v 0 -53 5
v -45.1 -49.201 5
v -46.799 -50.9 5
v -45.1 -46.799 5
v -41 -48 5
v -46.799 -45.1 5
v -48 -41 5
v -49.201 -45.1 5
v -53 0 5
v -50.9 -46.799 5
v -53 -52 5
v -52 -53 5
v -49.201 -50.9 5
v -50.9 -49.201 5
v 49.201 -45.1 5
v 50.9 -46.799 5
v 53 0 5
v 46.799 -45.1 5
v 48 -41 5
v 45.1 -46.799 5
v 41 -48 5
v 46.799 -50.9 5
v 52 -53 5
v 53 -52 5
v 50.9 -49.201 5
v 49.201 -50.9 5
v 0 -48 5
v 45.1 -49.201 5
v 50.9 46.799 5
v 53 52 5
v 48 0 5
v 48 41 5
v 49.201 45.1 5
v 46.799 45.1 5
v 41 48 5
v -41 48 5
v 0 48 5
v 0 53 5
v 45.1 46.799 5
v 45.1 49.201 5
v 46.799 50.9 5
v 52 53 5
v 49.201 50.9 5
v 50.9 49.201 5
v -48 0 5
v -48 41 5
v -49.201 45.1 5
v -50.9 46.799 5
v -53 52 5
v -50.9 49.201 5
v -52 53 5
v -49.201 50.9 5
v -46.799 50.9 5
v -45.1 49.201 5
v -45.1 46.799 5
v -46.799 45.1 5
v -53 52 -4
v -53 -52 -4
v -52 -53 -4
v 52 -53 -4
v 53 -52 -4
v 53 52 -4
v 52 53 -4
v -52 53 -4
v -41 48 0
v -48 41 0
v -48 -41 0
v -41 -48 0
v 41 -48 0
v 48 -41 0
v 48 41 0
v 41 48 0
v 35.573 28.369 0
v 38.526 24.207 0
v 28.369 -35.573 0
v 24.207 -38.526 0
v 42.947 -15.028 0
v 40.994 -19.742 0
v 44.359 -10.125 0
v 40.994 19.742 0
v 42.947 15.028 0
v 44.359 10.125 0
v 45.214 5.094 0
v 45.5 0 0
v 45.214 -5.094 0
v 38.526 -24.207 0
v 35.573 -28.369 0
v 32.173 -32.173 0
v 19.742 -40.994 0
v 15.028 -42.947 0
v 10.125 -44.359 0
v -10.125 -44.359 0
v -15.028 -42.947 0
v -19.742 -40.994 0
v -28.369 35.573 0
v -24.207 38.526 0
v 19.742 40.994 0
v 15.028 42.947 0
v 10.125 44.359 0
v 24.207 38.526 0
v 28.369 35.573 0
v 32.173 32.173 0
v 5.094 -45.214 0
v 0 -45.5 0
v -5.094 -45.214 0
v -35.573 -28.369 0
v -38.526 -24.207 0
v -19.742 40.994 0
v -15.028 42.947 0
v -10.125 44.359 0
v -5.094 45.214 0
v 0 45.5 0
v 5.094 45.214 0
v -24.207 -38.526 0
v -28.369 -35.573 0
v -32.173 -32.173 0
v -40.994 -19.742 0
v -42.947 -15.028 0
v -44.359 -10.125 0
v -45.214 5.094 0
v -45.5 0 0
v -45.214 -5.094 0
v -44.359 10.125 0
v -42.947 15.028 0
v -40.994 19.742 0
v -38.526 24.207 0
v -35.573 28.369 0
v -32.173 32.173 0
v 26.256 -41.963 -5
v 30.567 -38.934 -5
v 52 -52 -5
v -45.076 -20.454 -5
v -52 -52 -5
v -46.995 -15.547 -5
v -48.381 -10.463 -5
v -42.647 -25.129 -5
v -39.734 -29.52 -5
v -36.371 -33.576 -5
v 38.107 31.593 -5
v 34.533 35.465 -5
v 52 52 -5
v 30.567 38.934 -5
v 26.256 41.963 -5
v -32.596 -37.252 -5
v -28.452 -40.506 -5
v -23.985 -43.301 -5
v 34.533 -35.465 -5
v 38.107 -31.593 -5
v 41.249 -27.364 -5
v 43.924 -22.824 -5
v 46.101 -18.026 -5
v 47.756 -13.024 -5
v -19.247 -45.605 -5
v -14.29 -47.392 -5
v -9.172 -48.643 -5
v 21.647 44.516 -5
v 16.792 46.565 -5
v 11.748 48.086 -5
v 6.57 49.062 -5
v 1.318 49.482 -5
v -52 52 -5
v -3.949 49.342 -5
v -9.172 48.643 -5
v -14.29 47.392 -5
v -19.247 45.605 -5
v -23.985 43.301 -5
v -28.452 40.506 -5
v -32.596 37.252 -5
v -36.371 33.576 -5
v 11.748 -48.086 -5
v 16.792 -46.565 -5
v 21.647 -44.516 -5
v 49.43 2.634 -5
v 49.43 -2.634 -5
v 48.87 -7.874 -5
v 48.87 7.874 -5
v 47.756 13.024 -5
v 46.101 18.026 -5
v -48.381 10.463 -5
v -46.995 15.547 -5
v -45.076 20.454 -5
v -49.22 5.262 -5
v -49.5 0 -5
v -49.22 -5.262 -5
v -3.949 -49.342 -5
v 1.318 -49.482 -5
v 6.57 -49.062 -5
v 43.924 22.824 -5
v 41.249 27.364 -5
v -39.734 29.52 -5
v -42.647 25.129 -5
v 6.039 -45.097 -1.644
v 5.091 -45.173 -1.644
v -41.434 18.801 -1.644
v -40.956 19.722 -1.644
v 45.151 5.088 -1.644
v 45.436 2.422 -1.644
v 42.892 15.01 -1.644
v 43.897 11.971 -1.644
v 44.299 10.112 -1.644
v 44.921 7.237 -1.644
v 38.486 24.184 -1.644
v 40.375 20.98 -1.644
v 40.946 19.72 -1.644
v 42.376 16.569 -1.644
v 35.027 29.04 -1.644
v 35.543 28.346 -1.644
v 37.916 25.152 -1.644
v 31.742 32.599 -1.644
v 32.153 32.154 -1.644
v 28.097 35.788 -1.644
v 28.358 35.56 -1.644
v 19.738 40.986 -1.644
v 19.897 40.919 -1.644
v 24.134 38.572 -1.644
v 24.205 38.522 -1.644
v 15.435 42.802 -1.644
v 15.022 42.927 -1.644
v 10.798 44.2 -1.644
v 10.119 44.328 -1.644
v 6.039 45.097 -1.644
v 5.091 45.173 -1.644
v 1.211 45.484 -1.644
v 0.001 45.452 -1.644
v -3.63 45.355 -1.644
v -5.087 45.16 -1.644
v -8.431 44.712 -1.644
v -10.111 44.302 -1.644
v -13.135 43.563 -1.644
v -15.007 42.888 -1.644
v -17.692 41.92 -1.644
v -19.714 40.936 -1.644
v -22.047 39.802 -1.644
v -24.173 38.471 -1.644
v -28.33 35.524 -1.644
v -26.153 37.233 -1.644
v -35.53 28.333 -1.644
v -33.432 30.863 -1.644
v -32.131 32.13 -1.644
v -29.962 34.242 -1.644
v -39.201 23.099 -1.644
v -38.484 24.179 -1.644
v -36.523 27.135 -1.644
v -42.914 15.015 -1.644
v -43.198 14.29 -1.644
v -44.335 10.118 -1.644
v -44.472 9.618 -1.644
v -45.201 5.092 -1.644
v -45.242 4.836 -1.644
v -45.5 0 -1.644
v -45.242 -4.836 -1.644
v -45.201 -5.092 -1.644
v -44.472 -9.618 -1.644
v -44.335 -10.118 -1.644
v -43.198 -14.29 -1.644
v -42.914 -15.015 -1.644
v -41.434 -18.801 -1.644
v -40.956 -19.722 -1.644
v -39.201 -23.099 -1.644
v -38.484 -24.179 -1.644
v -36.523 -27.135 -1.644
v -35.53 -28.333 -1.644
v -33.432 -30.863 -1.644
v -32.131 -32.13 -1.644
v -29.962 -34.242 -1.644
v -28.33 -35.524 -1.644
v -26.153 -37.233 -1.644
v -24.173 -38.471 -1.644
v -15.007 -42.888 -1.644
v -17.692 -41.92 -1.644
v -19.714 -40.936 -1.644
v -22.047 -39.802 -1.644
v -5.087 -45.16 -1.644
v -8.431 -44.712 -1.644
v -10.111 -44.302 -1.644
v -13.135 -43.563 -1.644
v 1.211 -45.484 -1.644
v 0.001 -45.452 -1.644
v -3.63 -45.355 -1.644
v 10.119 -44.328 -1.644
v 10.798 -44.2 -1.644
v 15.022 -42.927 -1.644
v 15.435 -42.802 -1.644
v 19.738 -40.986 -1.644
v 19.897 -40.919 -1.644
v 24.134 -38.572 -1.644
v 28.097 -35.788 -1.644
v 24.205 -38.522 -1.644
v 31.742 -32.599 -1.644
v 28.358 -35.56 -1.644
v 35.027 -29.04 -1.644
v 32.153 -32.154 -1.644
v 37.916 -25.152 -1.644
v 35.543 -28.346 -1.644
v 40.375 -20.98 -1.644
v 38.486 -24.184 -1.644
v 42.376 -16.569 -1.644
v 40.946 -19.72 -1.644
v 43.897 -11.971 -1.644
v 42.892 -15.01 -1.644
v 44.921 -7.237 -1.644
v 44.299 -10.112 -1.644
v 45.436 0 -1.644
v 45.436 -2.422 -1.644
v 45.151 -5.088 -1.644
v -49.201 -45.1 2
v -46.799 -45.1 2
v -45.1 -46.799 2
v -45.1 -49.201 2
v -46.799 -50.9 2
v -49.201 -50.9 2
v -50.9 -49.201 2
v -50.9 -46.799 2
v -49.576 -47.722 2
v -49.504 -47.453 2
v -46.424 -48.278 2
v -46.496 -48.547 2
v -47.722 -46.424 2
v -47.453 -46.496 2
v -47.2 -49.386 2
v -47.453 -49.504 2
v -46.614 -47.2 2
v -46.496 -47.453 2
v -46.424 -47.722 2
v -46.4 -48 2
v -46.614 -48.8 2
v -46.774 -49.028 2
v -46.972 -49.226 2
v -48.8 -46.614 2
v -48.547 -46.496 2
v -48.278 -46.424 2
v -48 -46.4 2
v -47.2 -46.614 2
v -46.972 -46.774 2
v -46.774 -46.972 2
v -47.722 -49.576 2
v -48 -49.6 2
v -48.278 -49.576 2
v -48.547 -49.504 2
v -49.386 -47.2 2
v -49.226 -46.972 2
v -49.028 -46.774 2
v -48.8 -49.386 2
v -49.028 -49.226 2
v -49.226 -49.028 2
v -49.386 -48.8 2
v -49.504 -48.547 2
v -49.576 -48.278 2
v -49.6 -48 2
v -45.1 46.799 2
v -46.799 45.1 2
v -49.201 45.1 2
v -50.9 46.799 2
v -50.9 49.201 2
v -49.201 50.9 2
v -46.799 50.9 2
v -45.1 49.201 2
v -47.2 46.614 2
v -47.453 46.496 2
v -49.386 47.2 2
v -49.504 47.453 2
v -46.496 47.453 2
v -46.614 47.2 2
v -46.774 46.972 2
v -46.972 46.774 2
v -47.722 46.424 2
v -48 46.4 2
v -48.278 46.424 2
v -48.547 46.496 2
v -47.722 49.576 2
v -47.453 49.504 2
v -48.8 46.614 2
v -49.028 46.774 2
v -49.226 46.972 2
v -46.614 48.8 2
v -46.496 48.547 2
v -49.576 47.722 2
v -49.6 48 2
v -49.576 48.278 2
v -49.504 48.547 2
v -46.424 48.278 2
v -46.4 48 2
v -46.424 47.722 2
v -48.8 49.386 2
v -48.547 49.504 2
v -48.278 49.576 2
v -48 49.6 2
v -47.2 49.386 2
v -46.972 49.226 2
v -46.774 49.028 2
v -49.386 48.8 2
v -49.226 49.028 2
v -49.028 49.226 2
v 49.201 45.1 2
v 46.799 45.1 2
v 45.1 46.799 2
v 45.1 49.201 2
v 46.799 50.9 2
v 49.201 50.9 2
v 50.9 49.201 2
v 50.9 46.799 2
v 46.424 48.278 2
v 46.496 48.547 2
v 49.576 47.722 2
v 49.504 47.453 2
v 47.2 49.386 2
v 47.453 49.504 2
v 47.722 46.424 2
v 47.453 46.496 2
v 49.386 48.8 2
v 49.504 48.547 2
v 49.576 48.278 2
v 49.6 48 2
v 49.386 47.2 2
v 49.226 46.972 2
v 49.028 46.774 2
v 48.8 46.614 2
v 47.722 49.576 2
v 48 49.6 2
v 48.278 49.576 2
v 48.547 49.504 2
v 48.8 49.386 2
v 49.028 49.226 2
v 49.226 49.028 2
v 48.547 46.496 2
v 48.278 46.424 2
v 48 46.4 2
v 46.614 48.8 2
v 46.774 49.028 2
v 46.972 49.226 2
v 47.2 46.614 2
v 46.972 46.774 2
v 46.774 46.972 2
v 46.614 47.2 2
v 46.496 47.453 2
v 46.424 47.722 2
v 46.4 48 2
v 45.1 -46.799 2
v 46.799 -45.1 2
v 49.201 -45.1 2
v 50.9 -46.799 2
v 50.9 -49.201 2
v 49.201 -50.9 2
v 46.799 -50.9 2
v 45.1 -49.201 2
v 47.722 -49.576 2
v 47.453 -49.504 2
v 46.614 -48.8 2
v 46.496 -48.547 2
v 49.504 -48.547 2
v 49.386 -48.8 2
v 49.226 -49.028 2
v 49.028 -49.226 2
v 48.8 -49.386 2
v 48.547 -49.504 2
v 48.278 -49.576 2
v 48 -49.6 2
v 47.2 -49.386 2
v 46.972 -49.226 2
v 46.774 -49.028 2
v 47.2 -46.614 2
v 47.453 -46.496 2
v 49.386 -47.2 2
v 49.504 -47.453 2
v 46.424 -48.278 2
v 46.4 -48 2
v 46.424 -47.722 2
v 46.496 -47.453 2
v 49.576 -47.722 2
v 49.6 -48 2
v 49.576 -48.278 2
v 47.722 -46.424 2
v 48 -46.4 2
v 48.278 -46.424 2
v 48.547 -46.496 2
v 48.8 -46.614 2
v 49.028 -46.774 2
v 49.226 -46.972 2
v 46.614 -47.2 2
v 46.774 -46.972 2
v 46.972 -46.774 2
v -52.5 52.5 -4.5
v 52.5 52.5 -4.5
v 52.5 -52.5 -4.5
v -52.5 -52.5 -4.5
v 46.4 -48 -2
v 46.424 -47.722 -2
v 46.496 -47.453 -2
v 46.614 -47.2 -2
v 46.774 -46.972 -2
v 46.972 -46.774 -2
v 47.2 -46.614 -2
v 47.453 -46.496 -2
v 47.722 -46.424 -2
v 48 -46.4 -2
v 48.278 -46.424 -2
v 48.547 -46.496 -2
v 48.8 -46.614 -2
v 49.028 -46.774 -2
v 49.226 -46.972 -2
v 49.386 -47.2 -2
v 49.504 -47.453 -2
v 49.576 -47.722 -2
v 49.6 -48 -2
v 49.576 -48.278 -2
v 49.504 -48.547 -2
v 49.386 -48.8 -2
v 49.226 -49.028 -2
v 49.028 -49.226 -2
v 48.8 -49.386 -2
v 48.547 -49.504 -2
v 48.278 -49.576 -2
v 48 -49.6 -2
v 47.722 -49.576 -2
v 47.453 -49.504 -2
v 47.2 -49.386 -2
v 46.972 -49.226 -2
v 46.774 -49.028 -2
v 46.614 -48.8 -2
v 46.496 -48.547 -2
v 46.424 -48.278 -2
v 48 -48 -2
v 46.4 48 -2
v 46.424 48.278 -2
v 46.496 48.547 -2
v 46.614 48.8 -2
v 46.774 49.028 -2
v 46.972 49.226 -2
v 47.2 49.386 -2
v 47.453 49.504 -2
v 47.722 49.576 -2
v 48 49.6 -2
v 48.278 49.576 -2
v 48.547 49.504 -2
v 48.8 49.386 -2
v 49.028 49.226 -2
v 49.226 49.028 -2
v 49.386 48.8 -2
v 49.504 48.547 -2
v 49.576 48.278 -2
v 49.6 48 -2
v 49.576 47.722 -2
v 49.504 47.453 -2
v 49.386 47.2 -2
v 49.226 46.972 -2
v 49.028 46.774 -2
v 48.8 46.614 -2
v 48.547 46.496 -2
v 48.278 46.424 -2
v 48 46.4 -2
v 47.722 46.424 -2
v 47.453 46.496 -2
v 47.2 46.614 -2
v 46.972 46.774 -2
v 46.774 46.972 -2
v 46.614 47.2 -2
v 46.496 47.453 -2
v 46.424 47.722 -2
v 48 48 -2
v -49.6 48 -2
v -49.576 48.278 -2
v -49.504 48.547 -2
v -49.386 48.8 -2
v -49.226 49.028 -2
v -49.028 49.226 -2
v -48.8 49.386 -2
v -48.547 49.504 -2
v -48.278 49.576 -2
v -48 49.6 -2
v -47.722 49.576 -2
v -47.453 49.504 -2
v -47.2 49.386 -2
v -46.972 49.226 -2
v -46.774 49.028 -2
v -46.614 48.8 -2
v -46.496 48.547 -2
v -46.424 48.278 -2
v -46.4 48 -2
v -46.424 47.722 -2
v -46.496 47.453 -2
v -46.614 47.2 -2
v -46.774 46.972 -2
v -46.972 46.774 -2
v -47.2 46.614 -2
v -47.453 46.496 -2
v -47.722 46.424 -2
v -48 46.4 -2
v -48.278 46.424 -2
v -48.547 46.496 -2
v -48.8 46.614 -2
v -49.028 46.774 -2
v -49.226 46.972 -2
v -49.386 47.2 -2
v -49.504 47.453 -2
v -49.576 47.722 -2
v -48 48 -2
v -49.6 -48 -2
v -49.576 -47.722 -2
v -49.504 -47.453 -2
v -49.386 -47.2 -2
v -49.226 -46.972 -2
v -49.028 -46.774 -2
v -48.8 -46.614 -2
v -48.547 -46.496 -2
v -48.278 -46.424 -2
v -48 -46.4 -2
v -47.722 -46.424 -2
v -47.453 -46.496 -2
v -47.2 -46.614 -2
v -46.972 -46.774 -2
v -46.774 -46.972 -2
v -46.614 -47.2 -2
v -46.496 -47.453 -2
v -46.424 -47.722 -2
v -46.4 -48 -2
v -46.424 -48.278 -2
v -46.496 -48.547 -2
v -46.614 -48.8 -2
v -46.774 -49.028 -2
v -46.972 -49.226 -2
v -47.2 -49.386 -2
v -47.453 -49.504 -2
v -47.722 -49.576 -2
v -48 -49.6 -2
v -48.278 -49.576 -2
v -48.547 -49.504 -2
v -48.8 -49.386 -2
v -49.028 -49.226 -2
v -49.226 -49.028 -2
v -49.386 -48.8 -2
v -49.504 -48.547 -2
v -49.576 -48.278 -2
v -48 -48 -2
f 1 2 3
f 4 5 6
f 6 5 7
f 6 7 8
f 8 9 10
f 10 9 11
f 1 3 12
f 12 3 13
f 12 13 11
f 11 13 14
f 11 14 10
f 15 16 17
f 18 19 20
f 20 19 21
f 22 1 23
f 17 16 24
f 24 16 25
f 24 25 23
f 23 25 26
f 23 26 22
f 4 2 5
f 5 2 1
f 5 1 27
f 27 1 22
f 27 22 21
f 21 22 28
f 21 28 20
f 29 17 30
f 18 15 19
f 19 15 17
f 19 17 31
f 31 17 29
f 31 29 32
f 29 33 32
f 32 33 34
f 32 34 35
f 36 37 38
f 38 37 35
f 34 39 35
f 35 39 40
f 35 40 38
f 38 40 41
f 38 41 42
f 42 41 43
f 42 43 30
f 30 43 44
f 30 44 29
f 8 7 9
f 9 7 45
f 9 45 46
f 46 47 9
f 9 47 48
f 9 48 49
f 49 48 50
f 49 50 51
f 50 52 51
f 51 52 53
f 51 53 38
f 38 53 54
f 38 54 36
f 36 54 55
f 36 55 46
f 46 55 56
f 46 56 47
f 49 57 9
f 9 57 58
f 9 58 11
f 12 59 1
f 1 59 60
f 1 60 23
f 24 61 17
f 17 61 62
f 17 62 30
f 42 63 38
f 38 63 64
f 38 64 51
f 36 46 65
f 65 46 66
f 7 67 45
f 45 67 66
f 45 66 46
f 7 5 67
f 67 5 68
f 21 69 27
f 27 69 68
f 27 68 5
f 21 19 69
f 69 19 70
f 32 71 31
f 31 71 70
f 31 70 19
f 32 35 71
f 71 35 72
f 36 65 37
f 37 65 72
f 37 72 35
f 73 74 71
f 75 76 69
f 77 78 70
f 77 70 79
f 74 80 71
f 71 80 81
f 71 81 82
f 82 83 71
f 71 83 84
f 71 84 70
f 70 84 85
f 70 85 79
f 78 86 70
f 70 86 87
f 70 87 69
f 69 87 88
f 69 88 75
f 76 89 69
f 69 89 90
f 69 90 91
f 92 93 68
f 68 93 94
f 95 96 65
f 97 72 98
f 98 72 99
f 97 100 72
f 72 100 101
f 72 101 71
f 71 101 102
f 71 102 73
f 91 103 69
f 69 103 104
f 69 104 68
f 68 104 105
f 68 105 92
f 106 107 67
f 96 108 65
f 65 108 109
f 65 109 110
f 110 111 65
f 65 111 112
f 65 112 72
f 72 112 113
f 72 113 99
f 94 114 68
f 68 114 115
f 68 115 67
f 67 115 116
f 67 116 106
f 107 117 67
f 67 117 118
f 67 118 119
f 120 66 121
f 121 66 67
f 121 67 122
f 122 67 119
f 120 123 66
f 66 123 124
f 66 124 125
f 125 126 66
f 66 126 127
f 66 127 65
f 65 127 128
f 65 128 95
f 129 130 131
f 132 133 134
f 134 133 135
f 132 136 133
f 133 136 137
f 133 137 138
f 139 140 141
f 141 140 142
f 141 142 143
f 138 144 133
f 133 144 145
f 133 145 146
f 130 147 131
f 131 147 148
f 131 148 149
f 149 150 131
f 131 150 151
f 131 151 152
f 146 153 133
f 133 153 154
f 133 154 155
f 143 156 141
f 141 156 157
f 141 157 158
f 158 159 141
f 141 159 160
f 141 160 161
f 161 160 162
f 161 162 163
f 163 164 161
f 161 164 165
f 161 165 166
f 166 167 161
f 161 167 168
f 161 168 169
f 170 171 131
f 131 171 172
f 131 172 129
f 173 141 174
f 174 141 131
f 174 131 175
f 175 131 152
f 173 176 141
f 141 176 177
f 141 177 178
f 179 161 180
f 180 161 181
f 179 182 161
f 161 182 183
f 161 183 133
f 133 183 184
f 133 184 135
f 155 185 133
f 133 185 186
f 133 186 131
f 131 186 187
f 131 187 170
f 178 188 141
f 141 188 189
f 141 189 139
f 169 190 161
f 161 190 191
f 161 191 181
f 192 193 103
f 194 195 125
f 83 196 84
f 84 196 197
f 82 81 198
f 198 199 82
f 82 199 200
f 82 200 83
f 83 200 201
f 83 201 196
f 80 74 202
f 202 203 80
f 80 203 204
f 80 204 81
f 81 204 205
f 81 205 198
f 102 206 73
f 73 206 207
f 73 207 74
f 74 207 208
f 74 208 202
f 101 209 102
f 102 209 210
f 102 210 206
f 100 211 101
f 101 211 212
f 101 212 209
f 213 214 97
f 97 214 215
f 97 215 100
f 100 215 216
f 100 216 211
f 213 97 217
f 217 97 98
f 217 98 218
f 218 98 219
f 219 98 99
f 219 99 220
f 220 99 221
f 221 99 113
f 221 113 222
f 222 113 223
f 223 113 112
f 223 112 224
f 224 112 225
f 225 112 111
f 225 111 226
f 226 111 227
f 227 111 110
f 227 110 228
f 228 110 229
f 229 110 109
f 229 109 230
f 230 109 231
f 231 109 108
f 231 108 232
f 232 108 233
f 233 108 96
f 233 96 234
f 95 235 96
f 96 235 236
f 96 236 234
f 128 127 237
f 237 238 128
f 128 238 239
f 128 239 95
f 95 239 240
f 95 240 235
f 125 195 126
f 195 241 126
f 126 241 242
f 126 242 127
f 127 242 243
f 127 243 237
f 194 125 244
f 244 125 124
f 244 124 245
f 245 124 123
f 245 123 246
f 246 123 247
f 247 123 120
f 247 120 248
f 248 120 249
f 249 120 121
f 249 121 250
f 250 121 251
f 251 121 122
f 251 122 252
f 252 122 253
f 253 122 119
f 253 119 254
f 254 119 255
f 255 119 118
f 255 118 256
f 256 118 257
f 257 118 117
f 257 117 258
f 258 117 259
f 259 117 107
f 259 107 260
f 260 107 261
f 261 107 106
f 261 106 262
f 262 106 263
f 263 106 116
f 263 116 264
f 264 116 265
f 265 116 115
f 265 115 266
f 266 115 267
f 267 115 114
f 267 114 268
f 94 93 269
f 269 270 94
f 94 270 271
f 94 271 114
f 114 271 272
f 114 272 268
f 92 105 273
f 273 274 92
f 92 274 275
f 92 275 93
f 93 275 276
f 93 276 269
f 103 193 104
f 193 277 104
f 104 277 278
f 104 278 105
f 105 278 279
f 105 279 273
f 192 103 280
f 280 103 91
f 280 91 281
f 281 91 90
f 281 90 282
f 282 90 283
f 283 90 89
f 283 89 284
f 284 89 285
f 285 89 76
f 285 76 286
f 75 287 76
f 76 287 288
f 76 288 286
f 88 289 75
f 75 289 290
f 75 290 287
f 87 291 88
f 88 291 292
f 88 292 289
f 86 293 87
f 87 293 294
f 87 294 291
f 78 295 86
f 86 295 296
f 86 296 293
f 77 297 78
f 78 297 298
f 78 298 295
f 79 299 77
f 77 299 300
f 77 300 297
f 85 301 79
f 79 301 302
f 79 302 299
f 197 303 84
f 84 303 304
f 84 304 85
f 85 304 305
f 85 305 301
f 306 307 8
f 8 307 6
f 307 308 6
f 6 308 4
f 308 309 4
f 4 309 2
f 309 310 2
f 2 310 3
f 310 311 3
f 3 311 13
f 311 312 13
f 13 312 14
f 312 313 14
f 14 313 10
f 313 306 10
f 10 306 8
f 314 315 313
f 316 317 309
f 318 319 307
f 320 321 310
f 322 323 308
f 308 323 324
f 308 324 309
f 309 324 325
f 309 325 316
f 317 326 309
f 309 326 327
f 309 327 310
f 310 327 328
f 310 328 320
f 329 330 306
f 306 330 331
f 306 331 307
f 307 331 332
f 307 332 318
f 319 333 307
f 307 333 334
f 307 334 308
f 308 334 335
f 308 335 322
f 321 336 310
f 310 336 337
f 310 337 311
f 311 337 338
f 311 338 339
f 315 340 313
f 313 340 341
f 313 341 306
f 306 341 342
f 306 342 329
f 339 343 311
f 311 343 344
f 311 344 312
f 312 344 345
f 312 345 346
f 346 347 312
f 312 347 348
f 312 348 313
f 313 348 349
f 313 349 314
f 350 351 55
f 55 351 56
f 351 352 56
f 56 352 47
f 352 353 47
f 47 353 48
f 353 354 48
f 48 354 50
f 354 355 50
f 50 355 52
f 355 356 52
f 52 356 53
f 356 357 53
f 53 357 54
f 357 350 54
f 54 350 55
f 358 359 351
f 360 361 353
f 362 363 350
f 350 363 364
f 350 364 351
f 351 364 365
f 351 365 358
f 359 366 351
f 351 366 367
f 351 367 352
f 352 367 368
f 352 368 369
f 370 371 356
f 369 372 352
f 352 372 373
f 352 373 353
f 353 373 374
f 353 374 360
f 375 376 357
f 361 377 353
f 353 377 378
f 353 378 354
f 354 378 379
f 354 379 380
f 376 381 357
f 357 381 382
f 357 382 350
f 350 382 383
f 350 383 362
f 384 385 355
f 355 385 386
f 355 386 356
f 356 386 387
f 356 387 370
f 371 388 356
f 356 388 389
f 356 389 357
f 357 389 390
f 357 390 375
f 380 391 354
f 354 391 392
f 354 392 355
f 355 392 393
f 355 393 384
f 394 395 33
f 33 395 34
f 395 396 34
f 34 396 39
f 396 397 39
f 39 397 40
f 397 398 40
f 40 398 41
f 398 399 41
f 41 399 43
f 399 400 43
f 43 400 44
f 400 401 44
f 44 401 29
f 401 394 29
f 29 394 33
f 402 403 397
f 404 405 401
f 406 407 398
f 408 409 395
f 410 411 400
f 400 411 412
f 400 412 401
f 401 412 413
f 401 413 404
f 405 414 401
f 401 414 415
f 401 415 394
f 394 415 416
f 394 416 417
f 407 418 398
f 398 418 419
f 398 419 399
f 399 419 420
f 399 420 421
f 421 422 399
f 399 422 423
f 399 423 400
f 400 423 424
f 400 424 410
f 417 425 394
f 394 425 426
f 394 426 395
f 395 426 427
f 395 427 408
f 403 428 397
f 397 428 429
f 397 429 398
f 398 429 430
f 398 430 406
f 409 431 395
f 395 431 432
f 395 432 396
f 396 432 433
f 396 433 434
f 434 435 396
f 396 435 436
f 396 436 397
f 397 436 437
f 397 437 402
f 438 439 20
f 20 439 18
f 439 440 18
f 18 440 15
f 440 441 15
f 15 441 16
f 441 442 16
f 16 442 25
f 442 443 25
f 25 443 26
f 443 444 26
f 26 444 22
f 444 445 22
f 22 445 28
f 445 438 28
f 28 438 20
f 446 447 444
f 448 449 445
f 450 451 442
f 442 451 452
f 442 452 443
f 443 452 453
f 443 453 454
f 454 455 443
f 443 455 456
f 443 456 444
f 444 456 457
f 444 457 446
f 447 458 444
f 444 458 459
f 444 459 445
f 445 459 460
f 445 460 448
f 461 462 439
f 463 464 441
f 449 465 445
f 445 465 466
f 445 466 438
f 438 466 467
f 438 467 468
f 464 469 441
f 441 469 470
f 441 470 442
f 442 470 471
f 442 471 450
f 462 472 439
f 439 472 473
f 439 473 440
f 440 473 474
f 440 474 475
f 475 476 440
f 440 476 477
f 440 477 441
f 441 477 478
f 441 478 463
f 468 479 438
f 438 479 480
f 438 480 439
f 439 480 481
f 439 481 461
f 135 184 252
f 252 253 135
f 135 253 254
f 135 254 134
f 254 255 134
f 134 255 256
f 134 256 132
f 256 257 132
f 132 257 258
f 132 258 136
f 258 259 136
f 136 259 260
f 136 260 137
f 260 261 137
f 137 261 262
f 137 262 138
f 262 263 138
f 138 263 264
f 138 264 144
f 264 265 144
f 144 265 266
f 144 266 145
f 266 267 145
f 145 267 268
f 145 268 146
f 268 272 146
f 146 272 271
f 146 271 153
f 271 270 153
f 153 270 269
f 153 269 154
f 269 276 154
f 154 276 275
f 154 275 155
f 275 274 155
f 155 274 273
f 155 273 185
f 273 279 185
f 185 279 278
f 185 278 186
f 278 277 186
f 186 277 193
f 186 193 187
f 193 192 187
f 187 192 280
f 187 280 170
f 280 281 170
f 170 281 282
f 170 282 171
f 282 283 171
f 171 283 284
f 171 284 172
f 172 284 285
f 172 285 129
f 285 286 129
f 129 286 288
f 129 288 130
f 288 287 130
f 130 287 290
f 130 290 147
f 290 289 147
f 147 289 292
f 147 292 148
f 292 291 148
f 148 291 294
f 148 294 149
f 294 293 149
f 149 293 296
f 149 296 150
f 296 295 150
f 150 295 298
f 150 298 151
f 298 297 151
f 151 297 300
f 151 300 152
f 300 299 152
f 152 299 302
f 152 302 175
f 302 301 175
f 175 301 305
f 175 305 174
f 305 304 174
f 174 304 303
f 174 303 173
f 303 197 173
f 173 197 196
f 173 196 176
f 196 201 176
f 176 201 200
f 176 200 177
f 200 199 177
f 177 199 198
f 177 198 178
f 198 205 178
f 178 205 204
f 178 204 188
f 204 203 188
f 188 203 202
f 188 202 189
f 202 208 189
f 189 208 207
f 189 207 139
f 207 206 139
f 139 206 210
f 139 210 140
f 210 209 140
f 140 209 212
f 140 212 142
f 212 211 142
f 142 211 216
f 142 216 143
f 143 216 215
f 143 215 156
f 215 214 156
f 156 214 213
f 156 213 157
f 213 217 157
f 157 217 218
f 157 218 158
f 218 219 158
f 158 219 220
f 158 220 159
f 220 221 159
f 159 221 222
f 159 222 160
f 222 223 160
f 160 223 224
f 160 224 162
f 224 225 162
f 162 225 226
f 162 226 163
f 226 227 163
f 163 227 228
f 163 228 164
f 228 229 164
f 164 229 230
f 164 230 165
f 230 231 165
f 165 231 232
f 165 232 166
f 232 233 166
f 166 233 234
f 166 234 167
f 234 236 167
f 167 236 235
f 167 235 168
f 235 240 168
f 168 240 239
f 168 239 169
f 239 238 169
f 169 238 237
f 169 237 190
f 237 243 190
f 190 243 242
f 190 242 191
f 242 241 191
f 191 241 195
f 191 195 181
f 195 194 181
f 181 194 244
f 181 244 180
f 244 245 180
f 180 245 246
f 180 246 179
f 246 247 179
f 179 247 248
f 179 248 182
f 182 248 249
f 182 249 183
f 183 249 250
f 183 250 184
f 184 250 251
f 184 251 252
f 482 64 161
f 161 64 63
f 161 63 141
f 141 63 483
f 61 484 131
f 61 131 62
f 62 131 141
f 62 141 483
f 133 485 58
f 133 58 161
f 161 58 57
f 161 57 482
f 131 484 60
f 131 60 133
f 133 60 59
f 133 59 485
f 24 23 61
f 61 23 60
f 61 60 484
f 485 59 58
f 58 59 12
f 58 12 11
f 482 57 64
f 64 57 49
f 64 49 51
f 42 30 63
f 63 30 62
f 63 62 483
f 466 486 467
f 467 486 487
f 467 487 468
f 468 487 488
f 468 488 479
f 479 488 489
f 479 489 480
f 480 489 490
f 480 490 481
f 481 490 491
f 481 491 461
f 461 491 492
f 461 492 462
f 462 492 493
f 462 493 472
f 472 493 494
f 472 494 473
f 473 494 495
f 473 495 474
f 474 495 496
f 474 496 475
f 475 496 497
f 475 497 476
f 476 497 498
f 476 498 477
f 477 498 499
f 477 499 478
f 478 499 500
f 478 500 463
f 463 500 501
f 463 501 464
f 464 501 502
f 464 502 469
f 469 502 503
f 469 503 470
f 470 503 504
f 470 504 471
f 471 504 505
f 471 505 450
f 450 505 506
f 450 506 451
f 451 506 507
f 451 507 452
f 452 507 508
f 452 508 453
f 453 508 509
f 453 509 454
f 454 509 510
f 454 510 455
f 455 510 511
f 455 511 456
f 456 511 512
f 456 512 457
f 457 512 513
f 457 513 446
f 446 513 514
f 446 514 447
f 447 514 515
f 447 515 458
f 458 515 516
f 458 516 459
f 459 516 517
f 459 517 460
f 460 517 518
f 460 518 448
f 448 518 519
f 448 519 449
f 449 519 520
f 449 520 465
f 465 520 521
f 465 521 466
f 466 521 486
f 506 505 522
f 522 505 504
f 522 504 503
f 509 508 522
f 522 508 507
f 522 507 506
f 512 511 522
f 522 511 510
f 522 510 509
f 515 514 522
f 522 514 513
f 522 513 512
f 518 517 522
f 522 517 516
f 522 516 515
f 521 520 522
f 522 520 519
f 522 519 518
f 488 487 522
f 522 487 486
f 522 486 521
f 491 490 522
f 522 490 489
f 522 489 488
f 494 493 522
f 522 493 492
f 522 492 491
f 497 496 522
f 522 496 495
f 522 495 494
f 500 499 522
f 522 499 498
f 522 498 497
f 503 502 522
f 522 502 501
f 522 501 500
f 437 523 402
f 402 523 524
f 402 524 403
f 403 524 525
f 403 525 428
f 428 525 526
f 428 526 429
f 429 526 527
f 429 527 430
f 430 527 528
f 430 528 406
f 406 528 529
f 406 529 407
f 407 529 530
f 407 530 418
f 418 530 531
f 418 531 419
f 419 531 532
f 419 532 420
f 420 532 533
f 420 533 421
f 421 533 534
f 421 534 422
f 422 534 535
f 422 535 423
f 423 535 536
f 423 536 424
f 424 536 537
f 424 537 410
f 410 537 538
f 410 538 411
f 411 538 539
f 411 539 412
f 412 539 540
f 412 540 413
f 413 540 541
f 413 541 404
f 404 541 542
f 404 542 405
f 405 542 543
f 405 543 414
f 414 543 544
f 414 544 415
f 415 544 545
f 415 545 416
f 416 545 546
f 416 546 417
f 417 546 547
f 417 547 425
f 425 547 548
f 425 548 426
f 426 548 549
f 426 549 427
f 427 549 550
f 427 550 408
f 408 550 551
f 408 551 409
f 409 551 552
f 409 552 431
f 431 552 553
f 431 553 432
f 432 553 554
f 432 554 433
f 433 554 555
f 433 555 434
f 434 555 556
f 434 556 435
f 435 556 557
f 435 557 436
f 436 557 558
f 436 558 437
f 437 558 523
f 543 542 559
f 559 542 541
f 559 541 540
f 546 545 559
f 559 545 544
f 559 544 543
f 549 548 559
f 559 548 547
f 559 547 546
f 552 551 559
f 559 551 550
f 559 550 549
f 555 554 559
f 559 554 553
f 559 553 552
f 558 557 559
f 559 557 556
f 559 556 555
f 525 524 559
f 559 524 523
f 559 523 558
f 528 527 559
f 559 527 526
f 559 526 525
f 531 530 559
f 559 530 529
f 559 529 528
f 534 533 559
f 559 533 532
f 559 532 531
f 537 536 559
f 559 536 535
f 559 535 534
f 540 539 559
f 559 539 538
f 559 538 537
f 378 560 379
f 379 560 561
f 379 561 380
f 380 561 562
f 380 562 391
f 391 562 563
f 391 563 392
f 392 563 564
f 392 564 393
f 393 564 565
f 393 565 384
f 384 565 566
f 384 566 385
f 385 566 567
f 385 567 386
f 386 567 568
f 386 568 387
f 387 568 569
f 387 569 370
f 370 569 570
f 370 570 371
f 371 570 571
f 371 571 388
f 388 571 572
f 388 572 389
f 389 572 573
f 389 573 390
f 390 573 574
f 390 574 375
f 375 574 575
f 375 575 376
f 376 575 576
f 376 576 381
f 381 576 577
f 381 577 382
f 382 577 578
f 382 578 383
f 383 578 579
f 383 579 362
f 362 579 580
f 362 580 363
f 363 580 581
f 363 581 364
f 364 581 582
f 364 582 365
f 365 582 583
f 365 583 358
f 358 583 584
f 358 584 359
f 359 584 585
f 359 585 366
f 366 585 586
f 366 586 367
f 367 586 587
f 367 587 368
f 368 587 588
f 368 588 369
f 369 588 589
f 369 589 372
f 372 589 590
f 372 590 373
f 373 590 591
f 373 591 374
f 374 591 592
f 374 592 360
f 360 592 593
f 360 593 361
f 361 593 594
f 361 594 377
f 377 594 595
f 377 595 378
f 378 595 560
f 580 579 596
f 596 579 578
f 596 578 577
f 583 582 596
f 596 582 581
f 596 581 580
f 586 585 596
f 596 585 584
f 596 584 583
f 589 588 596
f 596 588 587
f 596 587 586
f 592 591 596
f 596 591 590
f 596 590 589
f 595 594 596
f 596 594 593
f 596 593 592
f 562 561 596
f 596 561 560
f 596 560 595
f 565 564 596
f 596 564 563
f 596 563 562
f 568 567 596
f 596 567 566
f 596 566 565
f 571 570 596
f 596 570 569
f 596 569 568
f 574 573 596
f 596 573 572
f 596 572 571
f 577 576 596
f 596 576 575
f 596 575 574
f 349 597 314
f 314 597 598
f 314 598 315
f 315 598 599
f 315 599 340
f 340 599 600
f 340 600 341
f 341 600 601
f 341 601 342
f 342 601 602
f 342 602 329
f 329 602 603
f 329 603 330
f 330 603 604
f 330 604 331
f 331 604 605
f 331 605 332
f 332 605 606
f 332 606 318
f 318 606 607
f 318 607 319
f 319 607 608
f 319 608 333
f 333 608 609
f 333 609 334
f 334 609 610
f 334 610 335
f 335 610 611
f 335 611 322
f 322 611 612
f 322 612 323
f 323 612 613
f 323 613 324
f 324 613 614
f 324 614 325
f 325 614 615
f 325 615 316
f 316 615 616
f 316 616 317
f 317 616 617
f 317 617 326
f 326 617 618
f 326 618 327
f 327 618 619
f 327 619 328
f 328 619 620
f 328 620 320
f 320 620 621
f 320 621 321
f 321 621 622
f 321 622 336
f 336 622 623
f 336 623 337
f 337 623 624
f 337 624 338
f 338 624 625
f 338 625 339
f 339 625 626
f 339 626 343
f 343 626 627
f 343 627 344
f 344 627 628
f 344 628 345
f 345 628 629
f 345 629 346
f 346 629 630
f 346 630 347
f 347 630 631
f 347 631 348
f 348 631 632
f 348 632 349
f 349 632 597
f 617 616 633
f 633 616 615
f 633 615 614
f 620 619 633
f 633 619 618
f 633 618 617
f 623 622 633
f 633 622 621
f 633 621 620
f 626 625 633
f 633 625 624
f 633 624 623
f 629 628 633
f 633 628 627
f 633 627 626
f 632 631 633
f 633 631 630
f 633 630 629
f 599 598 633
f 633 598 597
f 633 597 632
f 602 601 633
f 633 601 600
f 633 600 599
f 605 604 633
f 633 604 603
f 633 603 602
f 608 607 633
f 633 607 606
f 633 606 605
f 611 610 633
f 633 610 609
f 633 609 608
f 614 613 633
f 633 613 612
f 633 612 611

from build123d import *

# Parameters (mm, degrees)
SKETCH1_LARGER_DIA_W    = 106
SKETCH1_LARGER_DIA_H    = 106
BOSS_EXTRUDE1_DEPTH     = 5
SKETCH5_SMALLER_DIA_W   = 106
SKETCH5_SMALLER_DIA_H   = 106
SKETCH5_SMALLER_DIA_R   = 45.5
BOSS_EXTRUDE2_DEPTH     = 5
CUT_EXTRUDE1_DEPTH      = 3
CHAMFER1_SIZE           = 4
CHAMFER1_SIZE2          = 3.356398525
CHAMFER2_SIZE           = 1
CHAMFER3_SIZE           = 1
CUT_EXTRUDE2_DEPTH      = 10
CUT_EXTRUDE2_DEPTH_BACK = 2
SKETCH3_HOLES_R         = 1.6


with BuildPart() as part:
    # Sketch1 larger dia → Boss-Extrude1 (new body)
    with BuildSketch(Plane.XY):
        Rectangle(SKETCH1_LARGER_DIA_W, SKETCH1_LARGER_DIA_H)
        Polygon((-41, 48), (41, 48), (48, 41), (48, -41), (41, -48), (-41, -48), (-48, -41), (-48, 41), align=None, mode=Mode.SUBTRACT)
    extrude(amount=BOSS_EXTRUDE1_DEPTH)

    # Sketch5 smaller dia → Boss-Extrude2 (add)
    with BuildSketch(Plane(origin=(0, 0, 0), x_dir=(-1, 0, 0), z_dir=(0, 0, -1))):
        Rectangle(SKETCH5_SMALLER_DIA_W, SKETCH5_SMALLER_DIA_H)
        Circle(SKETCH5_SMALLER_DIA_R, mode=Mode.SUBTRACT)
    extrude(amount=BOSS_EXTRUDE2_DEPTH)

    # Sketch1 → Cut-Extrude1 (cut)
    with BuildSketch(Plane.XY.offset(5)):
        Polygon((-45.1, 46.798780669), (-45.1, 49.201219331), (-46.798780669, 50.9), (-49.201219331, 50.9), (-50.9, 49.201219331), (-50.9, 46.798780669), (-49.201219331, 45.1), (-46.798780669, 45.1), align=None)
        Polygon((-46.798780669, -45.1), (-45.1, -46.798780669), (-45.1, -49.201219331), (-46.798780669, -50.9), (-49.201219331, -50.9), (-50.9, -49.201219331), (-50.9, -46.798780669), (-49.201219331, -45.1), align=None)
        Polygon((46.798780669, 45.1), (45.1, 46.798780669), (45.1, 49.201219331), (46.798780669, 50.9), (49.201219331, 50.9), (50.9, 49.201219331), (50.9, 46.798780669), (49.201219331, 45.1), align=None)
        Polygon((45.1, -46.798780669), (45.1, -49.201219331), (46.798780669, -50.9), (49.201219331, -50.9), (50.9, -49.201219331), (50.9, -46.798780669), (49.201219331, -45.1), (46.798780669, -45.1), align=None)
    extrude(amount=-CUT_EXTRUDE1_DEPTH, mode=Mode.SUBTRACT)

    # Chamfer1
    chamfer1_edges = [part.edges().sort_by_distance(p)[0] for p in [
        (45.5, 0, -5),
    ]]
    chamfer1_side = [part.faces().sort_by_distance(p)[0] for p in [
        (0, 51.500933624, -5),
    ]]
    chamfer(chamfer1_edges, length=CHAMFER1_SIZE, length2=CHAMFER1_SIZE2, reference=chamfer1_side[0])

    # Chamfer2
    chamfer2_edges = [part.edges().sort_by_distance(p)[0] for p in [
        (53, 0, -5),
        (0, -53, -5),
        (-53, 0, -5),
        (0, 53, -5),
    ]]
    chamfer(chamfer2_edges, length=CHAMFER2_SIZE)

    # Chamfer3
    chamfer3_edges = [part.edges().sort_by_distance(p)[0] for p in [
        (-53, 53, 0.5),
        (53, 53, 0.5),
        (53, -53, 0.5),
        (-53, -53, 0.5),
    ]]
    chamfer(chamfer3_edges, length=CHAMFER3_SIZE)

    # Sketch3 holes → Cut-Extrude2 (cut, two sides: drawn at the far end of the back side and taken through both)
    with BuildSketch(Plane.XY.offset(-CUT_EXTRUDE2_DEPTH_BACK)):
        with Locations((-48, 48)):
            Circle(SKETCH3_HOLES_R)
        with Locations(Location((48, 48, 0), (0, 0, 180))):
            Circle(SKETCH3_HOLES_R)
        with Locations(Location((-48, -48, 0), (0, 0, 180))):
            Circle(SKETCH3_HOLES_R)
        with Locations((48, -48)):
            Circle(SKETCH3_HOLES_R)
    extrude(amount=CUT_EXTRUDE2_DEPTH + CUT_EXTRUDE2_DEPTH_BACK, mode=Mode.SUBTRACT)


solid = part.part
